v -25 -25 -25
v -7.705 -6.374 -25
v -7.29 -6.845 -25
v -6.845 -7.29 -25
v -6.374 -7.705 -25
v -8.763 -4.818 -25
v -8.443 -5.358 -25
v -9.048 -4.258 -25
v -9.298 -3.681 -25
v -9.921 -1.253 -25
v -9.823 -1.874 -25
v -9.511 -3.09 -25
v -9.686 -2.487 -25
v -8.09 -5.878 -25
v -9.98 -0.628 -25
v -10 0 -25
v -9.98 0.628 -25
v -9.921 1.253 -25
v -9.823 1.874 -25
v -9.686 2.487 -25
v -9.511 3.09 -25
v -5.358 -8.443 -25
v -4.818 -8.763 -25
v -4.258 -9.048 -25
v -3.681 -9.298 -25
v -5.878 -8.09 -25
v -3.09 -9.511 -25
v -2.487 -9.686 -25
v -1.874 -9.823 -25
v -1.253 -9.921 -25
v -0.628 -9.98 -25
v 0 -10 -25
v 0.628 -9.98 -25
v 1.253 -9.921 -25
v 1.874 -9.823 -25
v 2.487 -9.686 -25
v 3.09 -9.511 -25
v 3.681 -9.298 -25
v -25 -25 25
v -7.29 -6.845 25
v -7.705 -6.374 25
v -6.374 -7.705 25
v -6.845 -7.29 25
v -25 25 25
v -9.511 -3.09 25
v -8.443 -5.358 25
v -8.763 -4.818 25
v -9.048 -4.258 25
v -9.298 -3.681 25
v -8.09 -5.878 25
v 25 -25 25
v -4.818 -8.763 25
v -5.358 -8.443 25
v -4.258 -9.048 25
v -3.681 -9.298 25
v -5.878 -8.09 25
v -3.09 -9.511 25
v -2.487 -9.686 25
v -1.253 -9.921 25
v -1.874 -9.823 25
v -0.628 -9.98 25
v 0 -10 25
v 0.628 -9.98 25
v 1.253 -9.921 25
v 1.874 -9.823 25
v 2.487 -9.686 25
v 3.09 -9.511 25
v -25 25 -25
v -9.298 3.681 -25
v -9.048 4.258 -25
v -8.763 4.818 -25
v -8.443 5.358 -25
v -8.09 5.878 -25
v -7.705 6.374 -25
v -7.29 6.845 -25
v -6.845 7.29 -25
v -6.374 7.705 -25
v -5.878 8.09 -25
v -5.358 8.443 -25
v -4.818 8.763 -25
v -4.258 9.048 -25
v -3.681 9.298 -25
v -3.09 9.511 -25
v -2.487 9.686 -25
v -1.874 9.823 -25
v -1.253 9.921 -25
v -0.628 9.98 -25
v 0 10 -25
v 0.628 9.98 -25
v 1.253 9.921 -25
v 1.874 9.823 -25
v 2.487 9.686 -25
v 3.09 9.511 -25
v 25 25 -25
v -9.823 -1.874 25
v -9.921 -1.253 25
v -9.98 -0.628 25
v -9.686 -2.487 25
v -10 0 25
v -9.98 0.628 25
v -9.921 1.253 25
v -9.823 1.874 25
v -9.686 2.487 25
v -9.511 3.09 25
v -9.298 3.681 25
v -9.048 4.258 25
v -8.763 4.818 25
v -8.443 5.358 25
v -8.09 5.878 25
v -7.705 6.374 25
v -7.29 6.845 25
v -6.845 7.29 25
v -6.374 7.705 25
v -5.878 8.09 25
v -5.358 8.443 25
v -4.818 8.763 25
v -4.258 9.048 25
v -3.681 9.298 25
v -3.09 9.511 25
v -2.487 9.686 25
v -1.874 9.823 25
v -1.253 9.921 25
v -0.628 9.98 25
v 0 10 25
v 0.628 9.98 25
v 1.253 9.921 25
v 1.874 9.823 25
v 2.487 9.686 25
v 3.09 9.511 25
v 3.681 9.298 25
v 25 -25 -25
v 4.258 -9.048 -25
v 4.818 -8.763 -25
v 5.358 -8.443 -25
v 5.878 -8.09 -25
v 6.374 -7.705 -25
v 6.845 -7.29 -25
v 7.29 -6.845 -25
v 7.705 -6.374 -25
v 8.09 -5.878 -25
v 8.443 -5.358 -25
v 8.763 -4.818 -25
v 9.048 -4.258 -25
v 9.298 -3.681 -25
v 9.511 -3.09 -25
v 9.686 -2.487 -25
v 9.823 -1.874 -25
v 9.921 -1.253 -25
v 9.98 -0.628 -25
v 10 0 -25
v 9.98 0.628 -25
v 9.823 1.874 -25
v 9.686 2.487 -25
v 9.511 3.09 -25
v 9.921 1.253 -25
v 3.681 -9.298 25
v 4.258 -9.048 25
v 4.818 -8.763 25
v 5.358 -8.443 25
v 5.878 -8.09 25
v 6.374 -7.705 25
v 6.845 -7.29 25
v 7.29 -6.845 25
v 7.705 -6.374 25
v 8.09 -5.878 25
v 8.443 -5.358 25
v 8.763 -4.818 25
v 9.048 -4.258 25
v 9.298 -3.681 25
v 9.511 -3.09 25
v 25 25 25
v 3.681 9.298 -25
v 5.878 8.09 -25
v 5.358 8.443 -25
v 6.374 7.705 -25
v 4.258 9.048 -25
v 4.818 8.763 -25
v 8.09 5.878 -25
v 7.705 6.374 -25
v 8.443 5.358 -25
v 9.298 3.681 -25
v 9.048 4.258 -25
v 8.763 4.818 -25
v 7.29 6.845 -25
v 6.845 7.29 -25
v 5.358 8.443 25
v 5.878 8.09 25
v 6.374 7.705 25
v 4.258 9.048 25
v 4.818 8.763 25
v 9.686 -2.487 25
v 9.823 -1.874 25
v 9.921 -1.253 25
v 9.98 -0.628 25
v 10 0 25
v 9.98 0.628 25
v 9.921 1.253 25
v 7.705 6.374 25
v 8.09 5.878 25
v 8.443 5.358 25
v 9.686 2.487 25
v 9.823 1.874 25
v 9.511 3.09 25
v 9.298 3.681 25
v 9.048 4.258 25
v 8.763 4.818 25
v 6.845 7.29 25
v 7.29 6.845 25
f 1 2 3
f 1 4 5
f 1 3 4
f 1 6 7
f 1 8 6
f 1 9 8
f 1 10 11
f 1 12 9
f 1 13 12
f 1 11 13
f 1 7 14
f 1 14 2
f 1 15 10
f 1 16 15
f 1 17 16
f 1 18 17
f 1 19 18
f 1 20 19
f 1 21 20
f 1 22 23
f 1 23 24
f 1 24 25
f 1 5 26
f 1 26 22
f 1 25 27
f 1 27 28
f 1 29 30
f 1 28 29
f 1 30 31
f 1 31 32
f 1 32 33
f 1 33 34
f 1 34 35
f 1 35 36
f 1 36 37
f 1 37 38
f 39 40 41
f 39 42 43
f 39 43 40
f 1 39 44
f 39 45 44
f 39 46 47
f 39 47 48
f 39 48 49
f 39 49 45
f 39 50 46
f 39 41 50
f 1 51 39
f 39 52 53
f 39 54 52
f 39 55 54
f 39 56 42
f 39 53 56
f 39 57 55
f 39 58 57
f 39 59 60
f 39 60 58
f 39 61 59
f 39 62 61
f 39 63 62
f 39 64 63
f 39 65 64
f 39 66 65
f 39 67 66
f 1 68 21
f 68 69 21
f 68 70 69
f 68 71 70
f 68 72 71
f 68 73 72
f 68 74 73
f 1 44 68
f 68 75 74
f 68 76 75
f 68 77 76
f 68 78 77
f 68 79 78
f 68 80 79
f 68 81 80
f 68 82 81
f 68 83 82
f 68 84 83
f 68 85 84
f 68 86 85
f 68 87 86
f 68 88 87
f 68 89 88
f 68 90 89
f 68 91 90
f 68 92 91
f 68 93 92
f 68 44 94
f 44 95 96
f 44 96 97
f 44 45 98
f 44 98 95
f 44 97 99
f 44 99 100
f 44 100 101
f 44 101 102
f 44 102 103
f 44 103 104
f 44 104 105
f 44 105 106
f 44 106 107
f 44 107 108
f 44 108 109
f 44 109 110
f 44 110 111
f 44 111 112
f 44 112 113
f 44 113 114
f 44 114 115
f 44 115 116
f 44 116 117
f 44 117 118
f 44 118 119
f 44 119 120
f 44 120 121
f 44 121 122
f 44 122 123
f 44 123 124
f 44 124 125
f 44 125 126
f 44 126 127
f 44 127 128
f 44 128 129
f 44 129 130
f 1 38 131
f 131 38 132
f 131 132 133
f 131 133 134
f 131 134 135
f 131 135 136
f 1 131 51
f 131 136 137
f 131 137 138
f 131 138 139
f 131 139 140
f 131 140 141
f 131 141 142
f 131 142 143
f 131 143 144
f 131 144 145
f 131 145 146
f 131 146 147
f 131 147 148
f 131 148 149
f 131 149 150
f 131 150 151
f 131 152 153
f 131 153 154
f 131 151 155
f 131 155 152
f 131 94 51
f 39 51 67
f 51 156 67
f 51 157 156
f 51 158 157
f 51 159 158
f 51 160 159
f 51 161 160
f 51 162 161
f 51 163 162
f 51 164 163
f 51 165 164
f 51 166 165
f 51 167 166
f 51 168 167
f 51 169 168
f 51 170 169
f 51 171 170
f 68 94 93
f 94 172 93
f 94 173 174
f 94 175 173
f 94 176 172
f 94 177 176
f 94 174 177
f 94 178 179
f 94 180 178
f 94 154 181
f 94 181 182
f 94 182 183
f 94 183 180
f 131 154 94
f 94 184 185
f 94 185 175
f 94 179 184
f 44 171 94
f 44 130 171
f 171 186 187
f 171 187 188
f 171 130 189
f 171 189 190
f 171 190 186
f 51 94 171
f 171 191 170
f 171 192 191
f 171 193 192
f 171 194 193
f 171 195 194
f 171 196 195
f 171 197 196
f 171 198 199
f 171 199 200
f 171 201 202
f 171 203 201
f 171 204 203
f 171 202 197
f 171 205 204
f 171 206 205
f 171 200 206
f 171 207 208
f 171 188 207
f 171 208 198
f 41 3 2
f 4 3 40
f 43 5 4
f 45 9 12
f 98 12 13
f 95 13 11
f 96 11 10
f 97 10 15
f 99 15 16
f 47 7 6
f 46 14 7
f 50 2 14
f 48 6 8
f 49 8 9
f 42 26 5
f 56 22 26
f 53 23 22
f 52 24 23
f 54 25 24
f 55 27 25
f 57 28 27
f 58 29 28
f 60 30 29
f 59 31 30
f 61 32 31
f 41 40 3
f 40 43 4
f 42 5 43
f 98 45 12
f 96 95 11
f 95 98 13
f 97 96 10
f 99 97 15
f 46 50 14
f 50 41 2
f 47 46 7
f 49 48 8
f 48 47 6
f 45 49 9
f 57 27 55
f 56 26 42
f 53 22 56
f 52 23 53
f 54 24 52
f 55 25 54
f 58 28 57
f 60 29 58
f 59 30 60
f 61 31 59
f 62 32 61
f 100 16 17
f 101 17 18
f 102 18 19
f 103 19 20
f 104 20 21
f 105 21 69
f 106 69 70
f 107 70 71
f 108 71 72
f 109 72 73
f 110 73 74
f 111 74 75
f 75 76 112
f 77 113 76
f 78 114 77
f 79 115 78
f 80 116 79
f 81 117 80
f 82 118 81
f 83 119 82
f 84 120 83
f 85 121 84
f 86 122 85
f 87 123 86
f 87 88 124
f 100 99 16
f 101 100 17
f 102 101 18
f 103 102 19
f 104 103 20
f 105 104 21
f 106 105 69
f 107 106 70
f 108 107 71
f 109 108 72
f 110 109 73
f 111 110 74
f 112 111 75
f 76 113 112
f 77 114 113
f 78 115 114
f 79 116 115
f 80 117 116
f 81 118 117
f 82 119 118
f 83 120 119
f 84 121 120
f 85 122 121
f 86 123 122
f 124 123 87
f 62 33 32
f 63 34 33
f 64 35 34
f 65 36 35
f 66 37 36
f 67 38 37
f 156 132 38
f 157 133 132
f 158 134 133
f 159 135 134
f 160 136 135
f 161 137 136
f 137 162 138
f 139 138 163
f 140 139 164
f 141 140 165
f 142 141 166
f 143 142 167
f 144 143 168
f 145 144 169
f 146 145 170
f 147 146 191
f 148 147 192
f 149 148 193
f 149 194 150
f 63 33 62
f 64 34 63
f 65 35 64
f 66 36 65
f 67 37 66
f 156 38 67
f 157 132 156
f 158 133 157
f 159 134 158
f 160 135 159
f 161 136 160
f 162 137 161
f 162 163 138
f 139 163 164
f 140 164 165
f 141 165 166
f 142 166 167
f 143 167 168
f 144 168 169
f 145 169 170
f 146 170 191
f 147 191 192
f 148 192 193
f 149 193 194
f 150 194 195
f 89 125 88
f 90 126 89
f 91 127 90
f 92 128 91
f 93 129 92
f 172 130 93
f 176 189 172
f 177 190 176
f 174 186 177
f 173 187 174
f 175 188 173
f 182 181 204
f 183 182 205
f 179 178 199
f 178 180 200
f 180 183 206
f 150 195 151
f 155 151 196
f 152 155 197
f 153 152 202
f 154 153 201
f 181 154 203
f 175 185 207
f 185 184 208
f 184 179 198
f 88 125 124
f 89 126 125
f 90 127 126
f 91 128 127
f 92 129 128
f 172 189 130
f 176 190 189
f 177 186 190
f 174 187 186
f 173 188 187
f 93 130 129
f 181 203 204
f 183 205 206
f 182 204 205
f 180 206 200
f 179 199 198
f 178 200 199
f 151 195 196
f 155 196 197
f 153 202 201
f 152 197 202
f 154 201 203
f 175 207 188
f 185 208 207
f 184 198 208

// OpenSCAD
difference() {
    translate([-25, -25, -25])
        cube([50, 50, 50]);

    cylinder(h = 60, d = 20, center = true, $fn = 100);
}
